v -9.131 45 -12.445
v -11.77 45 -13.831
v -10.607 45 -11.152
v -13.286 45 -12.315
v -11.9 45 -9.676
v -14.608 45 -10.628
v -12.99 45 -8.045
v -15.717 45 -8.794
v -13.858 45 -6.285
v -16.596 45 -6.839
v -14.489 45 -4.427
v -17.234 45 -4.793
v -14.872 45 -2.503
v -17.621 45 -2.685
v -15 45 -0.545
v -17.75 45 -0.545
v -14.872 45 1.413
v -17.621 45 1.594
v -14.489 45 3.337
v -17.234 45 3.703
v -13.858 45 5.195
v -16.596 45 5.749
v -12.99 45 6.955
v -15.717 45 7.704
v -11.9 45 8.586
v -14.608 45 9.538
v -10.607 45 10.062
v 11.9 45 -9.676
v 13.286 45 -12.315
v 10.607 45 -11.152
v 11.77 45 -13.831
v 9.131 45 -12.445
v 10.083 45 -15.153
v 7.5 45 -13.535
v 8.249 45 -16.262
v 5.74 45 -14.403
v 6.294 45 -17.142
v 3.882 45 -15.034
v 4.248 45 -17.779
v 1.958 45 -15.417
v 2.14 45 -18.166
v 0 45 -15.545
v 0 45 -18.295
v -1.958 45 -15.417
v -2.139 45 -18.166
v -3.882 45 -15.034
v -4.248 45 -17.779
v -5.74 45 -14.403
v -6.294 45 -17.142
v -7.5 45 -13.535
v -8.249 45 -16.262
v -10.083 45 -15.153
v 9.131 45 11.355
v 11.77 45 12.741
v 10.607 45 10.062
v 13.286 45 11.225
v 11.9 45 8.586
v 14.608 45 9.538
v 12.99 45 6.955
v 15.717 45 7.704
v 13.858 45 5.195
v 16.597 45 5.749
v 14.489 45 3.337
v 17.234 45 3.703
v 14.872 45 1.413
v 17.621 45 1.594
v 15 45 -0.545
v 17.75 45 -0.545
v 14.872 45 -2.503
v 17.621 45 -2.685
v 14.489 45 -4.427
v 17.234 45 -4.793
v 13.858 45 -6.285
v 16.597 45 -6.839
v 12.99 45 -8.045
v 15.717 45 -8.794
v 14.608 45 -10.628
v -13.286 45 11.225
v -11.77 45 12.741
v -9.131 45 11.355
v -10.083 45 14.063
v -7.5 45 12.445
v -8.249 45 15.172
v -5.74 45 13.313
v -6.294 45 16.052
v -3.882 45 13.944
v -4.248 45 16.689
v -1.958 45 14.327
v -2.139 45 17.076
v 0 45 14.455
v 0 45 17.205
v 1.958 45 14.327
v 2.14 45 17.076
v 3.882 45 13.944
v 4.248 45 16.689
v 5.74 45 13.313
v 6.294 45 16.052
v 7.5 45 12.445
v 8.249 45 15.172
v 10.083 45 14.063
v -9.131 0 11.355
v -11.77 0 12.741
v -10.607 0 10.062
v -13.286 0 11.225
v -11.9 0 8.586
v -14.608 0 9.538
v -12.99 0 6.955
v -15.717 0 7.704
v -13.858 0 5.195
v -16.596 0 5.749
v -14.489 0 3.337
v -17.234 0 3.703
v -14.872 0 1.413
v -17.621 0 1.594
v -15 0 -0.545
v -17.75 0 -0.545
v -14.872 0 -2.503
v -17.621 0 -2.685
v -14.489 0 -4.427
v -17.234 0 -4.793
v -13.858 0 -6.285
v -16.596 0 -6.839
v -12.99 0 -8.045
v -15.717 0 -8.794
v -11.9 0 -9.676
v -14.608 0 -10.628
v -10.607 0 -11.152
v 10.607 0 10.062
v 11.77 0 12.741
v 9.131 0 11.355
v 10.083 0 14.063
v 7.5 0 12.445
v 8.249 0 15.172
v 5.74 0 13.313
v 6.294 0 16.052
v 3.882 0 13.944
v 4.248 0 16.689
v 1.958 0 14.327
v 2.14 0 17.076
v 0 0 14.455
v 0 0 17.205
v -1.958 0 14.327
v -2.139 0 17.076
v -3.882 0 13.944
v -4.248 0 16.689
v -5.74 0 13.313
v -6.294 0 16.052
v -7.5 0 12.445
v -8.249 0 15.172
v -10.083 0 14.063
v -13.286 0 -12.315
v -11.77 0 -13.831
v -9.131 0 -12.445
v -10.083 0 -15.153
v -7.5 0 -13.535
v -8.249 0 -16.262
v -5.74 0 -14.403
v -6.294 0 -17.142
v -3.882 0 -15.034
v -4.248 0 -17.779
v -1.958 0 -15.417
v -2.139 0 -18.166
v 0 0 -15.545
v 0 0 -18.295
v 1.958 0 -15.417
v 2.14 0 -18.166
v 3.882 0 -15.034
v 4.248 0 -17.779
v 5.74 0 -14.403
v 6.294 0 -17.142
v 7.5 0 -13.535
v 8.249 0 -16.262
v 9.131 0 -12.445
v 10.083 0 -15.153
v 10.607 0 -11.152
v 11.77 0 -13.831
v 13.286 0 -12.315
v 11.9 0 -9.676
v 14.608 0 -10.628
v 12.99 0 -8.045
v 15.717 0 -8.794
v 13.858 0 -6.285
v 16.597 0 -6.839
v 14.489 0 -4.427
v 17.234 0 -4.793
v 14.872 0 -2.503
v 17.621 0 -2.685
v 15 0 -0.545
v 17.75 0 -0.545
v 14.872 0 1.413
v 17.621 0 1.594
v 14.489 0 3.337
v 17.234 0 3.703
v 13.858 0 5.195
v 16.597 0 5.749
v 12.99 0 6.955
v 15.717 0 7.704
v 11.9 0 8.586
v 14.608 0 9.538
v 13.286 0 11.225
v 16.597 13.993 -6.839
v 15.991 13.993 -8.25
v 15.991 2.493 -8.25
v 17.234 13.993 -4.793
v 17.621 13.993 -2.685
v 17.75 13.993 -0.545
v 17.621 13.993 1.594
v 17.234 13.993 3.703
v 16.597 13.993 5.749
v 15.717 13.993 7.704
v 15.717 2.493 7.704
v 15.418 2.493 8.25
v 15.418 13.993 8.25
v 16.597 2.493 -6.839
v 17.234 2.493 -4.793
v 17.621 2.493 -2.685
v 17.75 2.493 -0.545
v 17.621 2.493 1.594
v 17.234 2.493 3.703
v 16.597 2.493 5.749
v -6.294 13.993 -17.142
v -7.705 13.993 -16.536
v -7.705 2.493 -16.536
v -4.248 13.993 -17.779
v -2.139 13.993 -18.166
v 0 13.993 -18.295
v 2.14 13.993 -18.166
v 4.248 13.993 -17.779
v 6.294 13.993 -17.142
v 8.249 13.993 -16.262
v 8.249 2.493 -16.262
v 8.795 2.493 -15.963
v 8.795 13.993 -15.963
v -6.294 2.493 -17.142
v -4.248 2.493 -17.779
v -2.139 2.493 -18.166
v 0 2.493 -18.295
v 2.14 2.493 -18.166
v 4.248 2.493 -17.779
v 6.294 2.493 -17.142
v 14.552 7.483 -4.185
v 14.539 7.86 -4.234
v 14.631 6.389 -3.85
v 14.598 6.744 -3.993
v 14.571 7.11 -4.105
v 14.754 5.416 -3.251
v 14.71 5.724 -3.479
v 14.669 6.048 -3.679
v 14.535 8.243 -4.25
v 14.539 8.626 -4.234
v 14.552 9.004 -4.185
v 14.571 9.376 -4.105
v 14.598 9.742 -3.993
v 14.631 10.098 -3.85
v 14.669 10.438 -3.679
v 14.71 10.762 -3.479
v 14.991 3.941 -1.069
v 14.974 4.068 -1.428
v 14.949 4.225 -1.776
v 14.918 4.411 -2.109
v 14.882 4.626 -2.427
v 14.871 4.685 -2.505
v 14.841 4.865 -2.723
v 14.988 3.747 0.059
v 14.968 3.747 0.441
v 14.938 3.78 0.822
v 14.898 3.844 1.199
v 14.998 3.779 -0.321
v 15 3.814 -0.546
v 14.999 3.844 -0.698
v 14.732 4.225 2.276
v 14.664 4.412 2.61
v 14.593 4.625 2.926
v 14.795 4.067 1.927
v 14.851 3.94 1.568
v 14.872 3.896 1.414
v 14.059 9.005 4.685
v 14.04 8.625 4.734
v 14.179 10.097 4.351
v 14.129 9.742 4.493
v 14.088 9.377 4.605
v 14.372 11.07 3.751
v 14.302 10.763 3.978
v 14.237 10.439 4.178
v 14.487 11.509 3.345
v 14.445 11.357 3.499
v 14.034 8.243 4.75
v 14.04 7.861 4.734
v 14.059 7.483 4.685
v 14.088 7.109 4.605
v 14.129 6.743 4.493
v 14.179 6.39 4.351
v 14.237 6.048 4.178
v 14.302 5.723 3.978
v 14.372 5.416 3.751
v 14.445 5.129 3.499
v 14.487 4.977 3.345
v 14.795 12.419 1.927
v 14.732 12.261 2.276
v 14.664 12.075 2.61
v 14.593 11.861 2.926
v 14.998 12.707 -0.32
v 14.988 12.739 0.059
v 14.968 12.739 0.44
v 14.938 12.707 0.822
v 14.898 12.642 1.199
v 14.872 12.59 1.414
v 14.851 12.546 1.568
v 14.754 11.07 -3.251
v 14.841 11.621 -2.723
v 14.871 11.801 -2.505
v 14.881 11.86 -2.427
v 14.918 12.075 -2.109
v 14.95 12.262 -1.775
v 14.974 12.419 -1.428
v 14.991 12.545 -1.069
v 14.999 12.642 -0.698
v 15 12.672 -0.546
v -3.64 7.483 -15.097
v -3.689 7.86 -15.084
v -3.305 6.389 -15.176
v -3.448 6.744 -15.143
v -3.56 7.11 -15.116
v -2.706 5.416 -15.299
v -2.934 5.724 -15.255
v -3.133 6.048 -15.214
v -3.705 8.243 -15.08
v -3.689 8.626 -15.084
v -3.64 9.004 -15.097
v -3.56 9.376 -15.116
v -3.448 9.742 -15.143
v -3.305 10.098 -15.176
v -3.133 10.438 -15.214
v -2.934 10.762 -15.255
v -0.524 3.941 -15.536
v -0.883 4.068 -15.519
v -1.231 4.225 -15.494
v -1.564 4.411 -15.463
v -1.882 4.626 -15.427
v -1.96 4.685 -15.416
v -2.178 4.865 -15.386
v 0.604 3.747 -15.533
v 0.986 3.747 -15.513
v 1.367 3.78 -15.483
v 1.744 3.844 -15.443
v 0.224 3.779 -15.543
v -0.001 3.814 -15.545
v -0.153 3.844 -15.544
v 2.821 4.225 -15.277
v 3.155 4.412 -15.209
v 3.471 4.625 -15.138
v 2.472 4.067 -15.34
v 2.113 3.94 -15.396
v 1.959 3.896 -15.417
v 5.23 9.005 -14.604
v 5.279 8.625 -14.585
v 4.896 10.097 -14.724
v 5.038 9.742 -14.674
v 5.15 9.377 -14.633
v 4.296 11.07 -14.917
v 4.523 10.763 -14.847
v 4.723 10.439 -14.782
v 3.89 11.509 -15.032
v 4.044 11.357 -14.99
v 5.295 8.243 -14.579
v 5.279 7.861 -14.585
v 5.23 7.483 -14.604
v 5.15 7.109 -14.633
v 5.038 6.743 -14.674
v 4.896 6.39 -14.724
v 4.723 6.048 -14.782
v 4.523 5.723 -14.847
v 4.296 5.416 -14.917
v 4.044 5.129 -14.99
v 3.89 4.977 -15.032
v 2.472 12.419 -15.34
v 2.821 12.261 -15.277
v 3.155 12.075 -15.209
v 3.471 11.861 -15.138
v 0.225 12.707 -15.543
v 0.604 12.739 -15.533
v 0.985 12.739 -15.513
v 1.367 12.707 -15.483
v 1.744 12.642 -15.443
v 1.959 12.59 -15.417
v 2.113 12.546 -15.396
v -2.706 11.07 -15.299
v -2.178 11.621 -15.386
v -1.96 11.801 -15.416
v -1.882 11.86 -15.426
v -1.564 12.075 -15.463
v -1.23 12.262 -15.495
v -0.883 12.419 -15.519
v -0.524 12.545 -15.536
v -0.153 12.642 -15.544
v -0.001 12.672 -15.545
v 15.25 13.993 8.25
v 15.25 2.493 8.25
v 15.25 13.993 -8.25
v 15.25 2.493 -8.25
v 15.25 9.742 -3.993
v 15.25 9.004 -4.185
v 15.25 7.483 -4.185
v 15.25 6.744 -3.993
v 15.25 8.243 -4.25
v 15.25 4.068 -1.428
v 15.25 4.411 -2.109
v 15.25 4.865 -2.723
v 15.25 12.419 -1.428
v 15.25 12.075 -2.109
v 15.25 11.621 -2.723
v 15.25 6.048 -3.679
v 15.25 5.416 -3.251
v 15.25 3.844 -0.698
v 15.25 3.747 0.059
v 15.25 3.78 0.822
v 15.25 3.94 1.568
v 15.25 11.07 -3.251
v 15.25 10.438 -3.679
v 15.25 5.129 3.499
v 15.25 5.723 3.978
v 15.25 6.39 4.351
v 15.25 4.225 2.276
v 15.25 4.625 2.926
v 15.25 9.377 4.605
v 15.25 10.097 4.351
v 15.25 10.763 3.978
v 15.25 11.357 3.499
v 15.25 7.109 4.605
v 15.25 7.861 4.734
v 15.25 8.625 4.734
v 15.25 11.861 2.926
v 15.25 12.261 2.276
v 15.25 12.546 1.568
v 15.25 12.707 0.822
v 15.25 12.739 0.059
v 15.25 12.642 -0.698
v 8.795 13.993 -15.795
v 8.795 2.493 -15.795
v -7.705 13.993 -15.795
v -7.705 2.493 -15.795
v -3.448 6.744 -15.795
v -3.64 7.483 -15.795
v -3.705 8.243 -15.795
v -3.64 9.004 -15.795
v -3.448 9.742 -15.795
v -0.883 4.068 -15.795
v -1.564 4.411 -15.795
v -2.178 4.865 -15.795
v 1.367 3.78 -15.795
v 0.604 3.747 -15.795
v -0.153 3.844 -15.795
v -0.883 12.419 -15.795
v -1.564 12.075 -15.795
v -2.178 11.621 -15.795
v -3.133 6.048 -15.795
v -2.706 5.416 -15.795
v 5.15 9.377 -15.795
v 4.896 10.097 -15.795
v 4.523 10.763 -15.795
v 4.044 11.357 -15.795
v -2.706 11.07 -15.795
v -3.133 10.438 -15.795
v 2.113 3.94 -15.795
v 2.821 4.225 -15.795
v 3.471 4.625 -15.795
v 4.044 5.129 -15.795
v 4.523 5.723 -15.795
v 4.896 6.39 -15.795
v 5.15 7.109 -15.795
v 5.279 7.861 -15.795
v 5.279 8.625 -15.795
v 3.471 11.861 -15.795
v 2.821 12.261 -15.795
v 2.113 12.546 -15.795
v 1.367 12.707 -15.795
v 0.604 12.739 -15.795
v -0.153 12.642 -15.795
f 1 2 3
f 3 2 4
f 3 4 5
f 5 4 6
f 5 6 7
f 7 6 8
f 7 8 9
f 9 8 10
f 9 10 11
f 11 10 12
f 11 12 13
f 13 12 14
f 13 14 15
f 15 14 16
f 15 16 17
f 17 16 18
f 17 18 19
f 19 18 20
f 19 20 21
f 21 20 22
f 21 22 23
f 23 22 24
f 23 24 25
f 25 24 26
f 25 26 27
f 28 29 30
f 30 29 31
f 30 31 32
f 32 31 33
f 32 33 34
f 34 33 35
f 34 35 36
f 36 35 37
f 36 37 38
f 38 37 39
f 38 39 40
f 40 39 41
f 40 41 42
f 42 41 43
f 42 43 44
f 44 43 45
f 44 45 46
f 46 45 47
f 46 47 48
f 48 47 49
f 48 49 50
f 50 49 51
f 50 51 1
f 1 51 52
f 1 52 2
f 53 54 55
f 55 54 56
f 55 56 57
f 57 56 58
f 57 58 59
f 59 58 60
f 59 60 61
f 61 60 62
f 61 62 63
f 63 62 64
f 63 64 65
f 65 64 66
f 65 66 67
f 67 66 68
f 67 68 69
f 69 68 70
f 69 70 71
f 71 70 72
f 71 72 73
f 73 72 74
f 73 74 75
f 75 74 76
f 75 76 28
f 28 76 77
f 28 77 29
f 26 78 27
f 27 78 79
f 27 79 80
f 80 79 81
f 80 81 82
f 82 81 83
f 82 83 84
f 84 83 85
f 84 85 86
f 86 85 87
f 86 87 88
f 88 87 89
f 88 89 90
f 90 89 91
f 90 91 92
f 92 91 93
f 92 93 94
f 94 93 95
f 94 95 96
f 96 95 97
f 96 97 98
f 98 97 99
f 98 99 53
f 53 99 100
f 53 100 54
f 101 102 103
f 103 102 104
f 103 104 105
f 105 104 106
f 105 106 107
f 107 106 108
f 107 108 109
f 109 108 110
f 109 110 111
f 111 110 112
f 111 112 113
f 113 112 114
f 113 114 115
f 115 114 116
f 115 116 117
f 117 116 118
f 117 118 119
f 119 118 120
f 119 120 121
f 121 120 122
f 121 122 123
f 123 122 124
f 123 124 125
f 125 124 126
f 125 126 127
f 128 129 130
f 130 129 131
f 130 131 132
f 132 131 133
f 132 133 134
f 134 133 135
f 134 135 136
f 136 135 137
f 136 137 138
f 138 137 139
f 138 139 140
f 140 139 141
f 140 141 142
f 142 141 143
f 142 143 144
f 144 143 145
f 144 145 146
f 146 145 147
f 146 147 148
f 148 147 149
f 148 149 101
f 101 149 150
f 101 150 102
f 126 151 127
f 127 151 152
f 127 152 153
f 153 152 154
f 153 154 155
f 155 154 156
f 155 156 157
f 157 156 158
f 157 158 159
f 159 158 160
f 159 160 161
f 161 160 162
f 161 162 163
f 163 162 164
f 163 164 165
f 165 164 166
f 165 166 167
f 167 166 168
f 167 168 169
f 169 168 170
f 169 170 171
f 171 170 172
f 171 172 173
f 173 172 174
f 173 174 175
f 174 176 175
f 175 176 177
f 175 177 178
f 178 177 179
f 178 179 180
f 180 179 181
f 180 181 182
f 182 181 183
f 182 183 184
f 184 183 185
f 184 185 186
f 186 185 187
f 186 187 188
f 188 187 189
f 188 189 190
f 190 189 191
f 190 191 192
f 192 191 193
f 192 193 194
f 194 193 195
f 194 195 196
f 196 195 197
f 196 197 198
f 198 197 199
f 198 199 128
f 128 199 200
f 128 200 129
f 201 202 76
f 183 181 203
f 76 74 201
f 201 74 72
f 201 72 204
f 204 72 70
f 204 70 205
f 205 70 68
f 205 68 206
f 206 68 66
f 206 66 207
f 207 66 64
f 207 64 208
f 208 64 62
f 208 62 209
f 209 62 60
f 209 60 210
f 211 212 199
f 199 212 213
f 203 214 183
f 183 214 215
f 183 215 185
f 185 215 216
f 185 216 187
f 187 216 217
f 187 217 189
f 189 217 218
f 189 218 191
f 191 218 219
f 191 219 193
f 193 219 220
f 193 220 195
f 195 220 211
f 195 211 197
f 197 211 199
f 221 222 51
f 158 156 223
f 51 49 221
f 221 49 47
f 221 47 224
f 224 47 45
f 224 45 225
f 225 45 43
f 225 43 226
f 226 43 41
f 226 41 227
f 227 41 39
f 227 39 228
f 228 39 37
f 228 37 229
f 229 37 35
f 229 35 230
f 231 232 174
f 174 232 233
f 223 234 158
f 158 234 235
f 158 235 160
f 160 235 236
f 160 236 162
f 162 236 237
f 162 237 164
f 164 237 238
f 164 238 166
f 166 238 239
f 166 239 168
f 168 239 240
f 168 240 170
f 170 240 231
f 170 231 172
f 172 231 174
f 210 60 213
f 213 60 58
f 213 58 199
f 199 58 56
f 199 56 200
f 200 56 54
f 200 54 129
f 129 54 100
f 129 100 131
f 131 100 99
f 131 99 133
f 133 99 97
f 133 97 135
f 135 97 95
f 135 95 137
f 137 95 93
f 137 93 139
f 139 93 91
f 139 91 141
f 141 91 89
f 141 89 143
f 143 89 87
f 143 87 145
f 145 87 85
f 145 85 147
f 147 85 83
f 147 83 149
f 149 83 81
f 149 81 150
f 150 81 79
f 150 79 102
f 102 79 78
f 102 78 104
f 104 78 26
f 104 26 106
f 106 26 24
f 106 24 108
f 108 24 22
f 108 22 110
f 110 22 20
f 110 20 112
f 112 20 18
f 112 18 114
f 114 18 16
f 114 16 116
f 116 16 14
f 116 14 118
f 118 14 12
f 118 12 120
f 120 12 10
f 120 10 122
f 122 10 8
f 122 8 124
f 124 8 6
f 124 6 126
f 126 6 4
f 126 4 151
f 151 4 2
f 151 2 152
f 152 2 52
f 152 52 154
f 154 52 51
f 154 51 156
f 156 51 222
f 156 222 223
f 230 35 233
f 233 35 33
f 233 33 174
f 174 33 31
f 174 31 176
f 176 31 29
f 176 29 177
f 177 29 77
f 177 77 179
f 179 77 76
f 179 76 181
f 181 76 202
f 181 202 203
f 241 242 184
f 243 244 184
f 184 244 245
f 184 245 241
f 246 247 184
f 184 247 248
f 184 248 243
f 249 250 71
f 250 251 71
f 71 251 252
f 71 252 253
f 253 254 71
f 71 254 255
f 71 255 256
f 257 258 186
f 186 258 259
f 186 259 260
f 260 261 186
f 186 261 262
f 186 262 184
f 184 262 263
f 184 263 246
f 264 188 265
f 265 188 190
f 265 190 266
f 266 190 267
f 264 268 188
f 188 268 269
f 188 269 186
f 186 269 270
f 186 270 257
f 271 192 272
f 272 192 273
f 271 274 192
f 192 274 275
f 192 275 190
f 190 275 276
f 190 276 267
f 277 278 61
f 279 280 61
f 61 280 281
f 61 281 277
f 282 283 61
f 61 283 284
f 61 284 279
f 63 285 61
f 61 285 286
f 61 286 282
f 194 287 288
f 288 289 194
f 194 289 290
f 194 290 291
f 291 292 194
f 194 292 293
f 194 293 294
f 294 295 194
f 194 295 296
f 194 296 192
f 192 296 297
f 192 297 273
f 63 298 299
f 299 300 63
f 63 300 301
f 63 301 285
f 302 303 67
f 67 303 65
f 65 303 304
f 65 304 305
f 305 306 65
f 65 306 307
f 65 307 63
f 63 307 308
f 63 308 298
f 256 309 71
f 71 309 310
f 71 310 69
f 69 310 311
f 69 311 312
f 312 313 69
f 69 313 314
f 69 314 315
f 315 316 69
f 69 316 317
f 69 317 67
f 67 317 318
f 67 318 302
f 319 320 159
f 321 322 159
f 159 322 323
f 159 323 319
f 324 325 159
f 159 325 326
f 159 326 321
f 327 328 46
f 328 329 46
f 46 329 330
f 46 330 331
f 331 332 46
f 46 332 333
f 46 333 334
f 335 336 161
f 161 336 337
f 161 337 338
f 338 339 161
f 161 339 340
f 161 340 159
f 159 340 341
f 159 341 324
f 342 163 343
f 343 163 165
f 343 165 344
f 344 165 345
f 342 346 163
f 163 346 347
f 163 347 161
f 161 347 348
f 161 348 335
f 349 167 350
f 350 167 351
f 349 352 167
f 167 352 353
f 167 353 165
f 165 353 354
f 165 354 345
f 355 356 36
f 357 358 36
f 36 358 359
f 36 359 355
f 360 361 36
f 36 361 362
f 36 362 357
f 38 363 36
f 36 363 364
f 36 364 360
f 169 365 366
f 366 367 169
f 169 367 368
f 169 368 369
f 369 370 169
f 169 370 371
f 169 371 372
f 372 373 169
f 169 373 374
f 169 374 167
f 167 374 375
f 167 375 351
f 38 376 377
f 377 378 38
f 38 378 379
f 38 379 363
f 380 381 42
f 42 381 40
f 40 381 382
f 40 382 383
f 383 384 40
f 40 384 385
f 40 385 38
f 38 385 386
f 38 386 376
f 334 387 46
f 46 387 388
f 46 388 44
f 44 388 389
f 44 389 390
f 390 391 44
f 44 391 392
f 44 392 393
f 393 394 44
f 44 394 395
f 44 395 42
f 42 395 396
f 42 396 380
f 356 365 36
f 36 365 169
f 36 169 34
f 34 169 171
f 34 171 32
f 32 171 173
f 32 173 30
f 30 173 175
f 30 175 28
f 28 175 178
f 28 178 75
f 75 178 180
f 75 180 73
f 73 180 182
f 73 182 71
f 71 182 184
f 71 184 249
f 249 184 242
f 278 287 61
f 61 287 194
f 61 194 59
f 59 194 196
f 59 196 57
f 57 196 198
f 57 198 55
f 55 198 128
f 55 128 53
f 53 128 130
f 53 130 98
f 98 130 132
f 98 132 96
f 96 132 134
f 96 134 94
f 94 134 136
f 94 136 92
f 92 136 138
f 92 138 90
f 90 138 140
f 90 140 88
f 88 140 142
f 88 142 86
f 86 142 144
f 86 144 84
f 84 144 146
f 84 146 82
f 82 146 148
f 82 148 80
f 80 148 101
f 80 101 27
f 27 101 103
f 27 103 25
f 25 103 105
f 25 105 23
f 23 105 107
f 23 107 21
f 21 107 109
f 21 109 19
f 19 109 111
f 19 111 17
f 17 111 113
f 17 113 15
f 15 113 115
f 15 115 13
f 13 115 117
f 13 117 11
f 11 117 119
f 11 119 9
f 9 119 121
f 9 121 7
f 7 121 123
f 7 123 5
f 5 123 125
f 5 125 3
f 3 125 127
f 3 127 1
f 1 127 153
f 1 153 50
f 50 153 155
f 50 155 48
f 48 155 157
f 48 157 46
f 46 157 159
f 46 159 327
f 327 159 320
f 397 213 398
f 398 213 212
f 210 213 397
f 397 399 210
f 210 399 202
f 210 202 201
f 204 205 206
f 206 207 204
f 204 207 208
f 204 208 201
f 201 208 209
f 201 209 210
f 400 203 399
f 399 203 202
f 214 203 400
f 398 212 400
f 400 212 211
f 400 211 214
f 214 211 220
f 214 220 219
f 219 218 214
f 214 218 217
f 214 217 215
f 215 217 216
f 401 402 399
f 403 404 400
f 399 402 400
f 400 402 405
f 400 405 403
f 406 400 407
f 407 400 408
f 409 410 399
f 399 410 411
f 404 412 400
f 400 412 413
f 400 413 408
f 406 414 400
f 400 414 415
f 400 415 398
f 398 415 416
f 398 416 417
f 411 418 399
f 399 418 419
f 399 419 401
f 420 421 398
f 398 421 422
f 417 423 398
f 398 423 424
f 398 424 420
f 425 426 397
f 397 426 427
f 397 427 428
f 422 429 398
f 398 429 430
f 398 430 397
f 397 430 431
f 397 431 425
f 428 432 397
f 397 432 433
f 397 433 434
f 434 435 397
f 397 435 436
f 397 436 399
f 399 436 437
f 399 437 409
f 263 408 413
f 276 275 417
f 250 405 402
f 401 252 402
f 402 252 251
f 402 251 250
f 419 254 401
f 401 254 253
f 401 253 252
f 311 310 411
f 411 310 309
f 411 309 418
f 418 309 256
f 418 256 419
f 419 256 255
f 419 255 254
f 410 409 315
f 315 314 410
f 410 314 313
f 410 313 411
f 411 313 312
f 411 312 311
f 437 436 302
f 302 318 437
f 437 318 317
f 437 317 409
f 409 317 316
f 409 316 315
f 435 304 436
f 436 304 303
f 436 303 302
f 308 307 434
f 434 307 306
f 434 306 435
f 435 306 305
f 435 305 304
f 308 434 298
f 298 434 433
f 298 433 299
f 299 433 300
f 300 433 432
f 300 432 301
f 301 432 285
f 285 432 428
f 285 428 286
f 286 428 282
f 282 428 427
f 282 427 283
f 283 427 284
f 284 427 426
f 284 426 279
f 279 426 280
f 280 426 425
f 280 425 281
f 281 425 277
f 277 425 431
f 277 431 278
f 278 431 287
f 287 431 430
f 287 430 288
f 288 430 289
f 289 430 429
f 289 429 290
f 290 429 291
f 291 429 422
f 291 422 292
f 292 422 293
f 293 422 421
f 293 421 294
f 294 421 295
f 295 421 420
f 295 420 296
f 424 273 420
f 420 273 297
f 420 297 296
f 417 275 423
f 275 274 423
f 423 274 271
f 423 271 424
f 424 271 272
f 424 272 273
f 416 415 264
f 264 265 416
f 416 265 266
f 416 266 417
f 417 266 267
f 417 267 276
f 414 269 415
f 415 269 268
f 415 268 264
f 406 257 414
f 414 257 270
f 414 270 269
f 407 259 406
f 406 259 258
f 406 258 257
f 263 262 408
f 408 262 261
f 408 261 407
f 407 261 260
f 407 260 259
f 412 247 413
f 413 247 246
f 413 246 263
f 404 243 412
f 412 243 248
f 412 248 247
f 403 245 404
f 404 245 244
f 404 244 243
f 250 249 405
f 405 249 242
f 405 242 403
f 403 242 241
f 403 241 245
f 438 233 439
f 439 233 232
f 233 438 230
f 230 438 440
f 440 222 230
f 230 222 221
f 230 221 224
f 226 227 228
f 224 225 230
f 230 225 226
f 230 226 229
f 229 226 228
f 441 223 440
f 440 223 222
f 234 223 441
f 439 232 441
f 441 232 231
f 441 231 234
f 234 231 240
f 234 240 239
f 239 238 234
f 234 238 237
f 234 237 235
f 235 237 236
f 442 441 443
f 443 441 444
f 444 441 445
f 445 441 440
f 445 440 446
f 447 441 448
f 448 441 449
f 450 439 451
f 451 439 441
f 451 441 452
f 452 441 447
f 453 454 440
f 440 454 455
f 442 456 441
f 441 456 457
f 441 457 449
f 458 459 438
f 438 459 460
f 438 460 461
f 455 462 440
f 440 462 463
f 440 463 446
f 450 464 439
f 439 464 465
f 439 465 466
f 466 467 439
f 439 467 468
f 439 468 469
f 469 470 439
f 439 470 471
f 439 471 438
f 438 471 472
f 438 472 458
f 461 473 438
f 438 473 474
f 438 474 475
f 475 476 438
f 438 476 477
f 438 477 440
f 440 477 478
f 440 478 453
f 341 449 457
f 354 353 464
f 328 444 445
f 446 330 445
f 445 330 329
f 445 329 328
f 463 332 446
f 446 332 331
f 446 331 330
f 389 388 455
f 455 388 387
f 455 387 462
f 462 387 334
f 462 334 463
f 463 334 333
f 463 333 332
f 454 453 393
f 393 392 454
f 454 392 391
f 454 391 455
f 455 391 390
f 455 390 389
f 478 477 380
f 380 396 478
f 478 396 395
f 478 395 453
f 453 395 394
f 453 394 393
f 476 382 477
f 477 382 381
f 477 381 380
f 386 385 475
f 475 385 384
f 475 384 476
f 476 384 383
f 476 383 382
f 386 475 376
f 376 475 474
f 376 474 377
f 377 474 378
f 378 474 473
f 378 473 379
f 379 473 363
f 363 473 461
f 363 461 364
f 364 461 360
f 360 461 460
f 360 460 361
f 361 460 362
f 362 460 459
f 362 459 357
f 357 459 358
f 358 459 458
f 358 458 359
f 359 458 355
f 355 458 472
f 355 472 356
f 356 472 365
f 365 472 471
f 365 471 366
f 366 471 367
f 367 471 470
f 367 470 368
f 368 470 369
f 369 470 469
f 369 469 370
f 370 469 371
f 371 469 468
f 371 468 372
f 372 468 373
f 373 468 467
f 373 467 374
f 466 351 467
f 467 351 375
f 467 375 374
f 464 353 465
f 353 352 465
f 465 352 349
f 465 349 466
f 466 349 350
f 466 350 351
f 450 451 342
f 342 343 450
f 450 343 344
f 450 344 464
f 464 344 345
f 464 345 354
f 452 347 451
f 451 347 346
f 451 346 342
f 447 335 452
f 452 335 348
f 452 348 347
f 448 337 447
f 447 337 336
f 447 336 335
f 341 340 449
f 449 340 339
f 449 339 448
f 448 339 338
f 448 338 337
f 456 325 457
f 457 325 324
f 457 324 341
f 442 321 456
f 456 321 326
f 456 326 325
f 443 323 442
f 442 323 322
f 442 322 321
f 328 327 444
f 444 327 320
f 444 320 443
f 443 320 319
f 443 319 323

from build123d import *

# Parameters (mm, degrees)
SKETCH1_R               = 17.75
SKETCH1_R_2             = 15
BOSS_EXTRUDE1_DEPTH     = 45
SKETCH2_W               = 16.5
SKETCH2_H               = 11.5
CUT_EXTRUDE1_DEPTH      = 2.5
CUT_EXTRUDE2_REACH      = 60.726
CUT_EXTRUDE2_END_RADIUS = 15
SKETCH3_R               = 4.5
CIRPATTERN1_COUNT       = 2
CIRPATTERN1_ANGLE       = 90


with BuildPart() as part:
    # Sketch1 → Boss-Extrude1 (new body)
    with BuildSketch(Plane(origin=(0, 0, 0), x_dir=(1, 0, 0), z_dir=(0, 1, 0))):
        with Locations(Location((0, 0.545038043, 0), (0, 0, 90))):
            Circle(SKETCH1_R)
        with Locations(Location((0, 0.545038043, 0), (0, 0, 90))):
            Circle(SKETCH1_R_2, mode=Mode.SUBTRACT)
    extrude(amount=BOSS_EXTRUDE1_DEPTH)

    # Sketch2 → Cut-Extrude1 (cut)
    with BuildSketch(Plane(origin=(17.75, 0, 0), x_dir=(0, 0, -1), z_dir=(1, 0, 0))):
        with Locations((0, 8.243102377)):
            Rectangle(SKETCH2_W, SKETCH2_H)
    cut_extrude1 = extrude(amount=-CUT_EXTRUDE1_DEPTH, mode=Mode.SUBTRACT)

    # Cut-Extrude2: up to this cylinder (the profile starts outside it)
    cut_extrude2_end = Plane(origin=(0, 8.243102, -0.545038043), z_dir=(0, -1, 0)) * Cylinder(CUT_EXTRUDE2_END_RADIUS, 152.452, mode=Mode.PRIVATE)
    # Sketch3 → Cut-Extrude2 (cut, up to the surface)
    with BuildSketch(Plane(origin=(15.25, 0, 0), x_dir=(0, 0, -1), z_dir=(1, 0, 0)), mode=Mode.PRIVATE) as cut_extrude2_sk1:
        with Locations((-0.25, 8.243102377)):
            Circle(SKETCH3_R)
    cut_extrude2_tool1 = extrude(cut_extrude2_sk1.sketch, amount=-CUT_EXTRUDE2_REACH, mode=Mode.PRIVATE) - cut_extrude2_end
    cut_extrude2 = cut_extrude2_tool1.solids().sort_by_distance((15.25, 8.243102, 0.25))[0]
    add(cut_extrude2, mode=Mode.SUBTRACT)

    # CirPattern1: Cut-Extrude1, Cut-Extrude2 ×2 about axis
    cirpattern1_axis = Axis((0, 0, -0.545038043), (0, 1, 0))
    add([cut_extrude1.rotate(cirpattern1_axis, i * CIRPATTERN1_ANGLE / (CIRPATTERN1_COUNT - 1)) for i in range(1, CIRPATTERN1_COUNT)], mode=Mode.SUBTRACT)
    add([cut_extrude2.rotate(cirpattern1_axis, i * CIRPATTERN1_ANGLE / (CIRPATTERN1_COUNT - 1)) for i in range(1, CIRPATTERN1_COUNT)], mode=Mode.SUBTRACT)


solid = part.part
